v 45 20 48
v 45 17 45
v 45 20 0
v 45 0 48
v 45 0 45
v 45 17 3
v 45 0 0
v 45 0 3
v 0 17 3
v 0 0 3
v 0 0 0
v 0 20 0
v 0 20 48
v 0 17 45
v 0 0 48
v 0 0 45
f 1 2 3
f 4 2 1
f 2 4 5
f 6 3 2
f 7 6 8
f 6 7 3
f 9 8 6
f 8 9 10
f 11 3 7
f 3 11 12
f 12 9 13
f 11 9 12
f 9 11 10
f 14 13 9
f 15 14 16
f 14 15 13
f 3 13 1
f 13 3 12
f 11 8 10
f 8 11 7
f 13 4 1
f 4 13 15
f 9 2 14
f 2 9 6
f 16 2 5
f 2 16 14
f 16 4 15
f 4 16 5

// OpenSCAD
// Base
cube([45, 20, 3]);

// Upright
translate([0, (20-3), 3])
  cube([45, 3, 45]);

// Top
translate([0, 0, 45])
  cube([45, 20, 3]);
